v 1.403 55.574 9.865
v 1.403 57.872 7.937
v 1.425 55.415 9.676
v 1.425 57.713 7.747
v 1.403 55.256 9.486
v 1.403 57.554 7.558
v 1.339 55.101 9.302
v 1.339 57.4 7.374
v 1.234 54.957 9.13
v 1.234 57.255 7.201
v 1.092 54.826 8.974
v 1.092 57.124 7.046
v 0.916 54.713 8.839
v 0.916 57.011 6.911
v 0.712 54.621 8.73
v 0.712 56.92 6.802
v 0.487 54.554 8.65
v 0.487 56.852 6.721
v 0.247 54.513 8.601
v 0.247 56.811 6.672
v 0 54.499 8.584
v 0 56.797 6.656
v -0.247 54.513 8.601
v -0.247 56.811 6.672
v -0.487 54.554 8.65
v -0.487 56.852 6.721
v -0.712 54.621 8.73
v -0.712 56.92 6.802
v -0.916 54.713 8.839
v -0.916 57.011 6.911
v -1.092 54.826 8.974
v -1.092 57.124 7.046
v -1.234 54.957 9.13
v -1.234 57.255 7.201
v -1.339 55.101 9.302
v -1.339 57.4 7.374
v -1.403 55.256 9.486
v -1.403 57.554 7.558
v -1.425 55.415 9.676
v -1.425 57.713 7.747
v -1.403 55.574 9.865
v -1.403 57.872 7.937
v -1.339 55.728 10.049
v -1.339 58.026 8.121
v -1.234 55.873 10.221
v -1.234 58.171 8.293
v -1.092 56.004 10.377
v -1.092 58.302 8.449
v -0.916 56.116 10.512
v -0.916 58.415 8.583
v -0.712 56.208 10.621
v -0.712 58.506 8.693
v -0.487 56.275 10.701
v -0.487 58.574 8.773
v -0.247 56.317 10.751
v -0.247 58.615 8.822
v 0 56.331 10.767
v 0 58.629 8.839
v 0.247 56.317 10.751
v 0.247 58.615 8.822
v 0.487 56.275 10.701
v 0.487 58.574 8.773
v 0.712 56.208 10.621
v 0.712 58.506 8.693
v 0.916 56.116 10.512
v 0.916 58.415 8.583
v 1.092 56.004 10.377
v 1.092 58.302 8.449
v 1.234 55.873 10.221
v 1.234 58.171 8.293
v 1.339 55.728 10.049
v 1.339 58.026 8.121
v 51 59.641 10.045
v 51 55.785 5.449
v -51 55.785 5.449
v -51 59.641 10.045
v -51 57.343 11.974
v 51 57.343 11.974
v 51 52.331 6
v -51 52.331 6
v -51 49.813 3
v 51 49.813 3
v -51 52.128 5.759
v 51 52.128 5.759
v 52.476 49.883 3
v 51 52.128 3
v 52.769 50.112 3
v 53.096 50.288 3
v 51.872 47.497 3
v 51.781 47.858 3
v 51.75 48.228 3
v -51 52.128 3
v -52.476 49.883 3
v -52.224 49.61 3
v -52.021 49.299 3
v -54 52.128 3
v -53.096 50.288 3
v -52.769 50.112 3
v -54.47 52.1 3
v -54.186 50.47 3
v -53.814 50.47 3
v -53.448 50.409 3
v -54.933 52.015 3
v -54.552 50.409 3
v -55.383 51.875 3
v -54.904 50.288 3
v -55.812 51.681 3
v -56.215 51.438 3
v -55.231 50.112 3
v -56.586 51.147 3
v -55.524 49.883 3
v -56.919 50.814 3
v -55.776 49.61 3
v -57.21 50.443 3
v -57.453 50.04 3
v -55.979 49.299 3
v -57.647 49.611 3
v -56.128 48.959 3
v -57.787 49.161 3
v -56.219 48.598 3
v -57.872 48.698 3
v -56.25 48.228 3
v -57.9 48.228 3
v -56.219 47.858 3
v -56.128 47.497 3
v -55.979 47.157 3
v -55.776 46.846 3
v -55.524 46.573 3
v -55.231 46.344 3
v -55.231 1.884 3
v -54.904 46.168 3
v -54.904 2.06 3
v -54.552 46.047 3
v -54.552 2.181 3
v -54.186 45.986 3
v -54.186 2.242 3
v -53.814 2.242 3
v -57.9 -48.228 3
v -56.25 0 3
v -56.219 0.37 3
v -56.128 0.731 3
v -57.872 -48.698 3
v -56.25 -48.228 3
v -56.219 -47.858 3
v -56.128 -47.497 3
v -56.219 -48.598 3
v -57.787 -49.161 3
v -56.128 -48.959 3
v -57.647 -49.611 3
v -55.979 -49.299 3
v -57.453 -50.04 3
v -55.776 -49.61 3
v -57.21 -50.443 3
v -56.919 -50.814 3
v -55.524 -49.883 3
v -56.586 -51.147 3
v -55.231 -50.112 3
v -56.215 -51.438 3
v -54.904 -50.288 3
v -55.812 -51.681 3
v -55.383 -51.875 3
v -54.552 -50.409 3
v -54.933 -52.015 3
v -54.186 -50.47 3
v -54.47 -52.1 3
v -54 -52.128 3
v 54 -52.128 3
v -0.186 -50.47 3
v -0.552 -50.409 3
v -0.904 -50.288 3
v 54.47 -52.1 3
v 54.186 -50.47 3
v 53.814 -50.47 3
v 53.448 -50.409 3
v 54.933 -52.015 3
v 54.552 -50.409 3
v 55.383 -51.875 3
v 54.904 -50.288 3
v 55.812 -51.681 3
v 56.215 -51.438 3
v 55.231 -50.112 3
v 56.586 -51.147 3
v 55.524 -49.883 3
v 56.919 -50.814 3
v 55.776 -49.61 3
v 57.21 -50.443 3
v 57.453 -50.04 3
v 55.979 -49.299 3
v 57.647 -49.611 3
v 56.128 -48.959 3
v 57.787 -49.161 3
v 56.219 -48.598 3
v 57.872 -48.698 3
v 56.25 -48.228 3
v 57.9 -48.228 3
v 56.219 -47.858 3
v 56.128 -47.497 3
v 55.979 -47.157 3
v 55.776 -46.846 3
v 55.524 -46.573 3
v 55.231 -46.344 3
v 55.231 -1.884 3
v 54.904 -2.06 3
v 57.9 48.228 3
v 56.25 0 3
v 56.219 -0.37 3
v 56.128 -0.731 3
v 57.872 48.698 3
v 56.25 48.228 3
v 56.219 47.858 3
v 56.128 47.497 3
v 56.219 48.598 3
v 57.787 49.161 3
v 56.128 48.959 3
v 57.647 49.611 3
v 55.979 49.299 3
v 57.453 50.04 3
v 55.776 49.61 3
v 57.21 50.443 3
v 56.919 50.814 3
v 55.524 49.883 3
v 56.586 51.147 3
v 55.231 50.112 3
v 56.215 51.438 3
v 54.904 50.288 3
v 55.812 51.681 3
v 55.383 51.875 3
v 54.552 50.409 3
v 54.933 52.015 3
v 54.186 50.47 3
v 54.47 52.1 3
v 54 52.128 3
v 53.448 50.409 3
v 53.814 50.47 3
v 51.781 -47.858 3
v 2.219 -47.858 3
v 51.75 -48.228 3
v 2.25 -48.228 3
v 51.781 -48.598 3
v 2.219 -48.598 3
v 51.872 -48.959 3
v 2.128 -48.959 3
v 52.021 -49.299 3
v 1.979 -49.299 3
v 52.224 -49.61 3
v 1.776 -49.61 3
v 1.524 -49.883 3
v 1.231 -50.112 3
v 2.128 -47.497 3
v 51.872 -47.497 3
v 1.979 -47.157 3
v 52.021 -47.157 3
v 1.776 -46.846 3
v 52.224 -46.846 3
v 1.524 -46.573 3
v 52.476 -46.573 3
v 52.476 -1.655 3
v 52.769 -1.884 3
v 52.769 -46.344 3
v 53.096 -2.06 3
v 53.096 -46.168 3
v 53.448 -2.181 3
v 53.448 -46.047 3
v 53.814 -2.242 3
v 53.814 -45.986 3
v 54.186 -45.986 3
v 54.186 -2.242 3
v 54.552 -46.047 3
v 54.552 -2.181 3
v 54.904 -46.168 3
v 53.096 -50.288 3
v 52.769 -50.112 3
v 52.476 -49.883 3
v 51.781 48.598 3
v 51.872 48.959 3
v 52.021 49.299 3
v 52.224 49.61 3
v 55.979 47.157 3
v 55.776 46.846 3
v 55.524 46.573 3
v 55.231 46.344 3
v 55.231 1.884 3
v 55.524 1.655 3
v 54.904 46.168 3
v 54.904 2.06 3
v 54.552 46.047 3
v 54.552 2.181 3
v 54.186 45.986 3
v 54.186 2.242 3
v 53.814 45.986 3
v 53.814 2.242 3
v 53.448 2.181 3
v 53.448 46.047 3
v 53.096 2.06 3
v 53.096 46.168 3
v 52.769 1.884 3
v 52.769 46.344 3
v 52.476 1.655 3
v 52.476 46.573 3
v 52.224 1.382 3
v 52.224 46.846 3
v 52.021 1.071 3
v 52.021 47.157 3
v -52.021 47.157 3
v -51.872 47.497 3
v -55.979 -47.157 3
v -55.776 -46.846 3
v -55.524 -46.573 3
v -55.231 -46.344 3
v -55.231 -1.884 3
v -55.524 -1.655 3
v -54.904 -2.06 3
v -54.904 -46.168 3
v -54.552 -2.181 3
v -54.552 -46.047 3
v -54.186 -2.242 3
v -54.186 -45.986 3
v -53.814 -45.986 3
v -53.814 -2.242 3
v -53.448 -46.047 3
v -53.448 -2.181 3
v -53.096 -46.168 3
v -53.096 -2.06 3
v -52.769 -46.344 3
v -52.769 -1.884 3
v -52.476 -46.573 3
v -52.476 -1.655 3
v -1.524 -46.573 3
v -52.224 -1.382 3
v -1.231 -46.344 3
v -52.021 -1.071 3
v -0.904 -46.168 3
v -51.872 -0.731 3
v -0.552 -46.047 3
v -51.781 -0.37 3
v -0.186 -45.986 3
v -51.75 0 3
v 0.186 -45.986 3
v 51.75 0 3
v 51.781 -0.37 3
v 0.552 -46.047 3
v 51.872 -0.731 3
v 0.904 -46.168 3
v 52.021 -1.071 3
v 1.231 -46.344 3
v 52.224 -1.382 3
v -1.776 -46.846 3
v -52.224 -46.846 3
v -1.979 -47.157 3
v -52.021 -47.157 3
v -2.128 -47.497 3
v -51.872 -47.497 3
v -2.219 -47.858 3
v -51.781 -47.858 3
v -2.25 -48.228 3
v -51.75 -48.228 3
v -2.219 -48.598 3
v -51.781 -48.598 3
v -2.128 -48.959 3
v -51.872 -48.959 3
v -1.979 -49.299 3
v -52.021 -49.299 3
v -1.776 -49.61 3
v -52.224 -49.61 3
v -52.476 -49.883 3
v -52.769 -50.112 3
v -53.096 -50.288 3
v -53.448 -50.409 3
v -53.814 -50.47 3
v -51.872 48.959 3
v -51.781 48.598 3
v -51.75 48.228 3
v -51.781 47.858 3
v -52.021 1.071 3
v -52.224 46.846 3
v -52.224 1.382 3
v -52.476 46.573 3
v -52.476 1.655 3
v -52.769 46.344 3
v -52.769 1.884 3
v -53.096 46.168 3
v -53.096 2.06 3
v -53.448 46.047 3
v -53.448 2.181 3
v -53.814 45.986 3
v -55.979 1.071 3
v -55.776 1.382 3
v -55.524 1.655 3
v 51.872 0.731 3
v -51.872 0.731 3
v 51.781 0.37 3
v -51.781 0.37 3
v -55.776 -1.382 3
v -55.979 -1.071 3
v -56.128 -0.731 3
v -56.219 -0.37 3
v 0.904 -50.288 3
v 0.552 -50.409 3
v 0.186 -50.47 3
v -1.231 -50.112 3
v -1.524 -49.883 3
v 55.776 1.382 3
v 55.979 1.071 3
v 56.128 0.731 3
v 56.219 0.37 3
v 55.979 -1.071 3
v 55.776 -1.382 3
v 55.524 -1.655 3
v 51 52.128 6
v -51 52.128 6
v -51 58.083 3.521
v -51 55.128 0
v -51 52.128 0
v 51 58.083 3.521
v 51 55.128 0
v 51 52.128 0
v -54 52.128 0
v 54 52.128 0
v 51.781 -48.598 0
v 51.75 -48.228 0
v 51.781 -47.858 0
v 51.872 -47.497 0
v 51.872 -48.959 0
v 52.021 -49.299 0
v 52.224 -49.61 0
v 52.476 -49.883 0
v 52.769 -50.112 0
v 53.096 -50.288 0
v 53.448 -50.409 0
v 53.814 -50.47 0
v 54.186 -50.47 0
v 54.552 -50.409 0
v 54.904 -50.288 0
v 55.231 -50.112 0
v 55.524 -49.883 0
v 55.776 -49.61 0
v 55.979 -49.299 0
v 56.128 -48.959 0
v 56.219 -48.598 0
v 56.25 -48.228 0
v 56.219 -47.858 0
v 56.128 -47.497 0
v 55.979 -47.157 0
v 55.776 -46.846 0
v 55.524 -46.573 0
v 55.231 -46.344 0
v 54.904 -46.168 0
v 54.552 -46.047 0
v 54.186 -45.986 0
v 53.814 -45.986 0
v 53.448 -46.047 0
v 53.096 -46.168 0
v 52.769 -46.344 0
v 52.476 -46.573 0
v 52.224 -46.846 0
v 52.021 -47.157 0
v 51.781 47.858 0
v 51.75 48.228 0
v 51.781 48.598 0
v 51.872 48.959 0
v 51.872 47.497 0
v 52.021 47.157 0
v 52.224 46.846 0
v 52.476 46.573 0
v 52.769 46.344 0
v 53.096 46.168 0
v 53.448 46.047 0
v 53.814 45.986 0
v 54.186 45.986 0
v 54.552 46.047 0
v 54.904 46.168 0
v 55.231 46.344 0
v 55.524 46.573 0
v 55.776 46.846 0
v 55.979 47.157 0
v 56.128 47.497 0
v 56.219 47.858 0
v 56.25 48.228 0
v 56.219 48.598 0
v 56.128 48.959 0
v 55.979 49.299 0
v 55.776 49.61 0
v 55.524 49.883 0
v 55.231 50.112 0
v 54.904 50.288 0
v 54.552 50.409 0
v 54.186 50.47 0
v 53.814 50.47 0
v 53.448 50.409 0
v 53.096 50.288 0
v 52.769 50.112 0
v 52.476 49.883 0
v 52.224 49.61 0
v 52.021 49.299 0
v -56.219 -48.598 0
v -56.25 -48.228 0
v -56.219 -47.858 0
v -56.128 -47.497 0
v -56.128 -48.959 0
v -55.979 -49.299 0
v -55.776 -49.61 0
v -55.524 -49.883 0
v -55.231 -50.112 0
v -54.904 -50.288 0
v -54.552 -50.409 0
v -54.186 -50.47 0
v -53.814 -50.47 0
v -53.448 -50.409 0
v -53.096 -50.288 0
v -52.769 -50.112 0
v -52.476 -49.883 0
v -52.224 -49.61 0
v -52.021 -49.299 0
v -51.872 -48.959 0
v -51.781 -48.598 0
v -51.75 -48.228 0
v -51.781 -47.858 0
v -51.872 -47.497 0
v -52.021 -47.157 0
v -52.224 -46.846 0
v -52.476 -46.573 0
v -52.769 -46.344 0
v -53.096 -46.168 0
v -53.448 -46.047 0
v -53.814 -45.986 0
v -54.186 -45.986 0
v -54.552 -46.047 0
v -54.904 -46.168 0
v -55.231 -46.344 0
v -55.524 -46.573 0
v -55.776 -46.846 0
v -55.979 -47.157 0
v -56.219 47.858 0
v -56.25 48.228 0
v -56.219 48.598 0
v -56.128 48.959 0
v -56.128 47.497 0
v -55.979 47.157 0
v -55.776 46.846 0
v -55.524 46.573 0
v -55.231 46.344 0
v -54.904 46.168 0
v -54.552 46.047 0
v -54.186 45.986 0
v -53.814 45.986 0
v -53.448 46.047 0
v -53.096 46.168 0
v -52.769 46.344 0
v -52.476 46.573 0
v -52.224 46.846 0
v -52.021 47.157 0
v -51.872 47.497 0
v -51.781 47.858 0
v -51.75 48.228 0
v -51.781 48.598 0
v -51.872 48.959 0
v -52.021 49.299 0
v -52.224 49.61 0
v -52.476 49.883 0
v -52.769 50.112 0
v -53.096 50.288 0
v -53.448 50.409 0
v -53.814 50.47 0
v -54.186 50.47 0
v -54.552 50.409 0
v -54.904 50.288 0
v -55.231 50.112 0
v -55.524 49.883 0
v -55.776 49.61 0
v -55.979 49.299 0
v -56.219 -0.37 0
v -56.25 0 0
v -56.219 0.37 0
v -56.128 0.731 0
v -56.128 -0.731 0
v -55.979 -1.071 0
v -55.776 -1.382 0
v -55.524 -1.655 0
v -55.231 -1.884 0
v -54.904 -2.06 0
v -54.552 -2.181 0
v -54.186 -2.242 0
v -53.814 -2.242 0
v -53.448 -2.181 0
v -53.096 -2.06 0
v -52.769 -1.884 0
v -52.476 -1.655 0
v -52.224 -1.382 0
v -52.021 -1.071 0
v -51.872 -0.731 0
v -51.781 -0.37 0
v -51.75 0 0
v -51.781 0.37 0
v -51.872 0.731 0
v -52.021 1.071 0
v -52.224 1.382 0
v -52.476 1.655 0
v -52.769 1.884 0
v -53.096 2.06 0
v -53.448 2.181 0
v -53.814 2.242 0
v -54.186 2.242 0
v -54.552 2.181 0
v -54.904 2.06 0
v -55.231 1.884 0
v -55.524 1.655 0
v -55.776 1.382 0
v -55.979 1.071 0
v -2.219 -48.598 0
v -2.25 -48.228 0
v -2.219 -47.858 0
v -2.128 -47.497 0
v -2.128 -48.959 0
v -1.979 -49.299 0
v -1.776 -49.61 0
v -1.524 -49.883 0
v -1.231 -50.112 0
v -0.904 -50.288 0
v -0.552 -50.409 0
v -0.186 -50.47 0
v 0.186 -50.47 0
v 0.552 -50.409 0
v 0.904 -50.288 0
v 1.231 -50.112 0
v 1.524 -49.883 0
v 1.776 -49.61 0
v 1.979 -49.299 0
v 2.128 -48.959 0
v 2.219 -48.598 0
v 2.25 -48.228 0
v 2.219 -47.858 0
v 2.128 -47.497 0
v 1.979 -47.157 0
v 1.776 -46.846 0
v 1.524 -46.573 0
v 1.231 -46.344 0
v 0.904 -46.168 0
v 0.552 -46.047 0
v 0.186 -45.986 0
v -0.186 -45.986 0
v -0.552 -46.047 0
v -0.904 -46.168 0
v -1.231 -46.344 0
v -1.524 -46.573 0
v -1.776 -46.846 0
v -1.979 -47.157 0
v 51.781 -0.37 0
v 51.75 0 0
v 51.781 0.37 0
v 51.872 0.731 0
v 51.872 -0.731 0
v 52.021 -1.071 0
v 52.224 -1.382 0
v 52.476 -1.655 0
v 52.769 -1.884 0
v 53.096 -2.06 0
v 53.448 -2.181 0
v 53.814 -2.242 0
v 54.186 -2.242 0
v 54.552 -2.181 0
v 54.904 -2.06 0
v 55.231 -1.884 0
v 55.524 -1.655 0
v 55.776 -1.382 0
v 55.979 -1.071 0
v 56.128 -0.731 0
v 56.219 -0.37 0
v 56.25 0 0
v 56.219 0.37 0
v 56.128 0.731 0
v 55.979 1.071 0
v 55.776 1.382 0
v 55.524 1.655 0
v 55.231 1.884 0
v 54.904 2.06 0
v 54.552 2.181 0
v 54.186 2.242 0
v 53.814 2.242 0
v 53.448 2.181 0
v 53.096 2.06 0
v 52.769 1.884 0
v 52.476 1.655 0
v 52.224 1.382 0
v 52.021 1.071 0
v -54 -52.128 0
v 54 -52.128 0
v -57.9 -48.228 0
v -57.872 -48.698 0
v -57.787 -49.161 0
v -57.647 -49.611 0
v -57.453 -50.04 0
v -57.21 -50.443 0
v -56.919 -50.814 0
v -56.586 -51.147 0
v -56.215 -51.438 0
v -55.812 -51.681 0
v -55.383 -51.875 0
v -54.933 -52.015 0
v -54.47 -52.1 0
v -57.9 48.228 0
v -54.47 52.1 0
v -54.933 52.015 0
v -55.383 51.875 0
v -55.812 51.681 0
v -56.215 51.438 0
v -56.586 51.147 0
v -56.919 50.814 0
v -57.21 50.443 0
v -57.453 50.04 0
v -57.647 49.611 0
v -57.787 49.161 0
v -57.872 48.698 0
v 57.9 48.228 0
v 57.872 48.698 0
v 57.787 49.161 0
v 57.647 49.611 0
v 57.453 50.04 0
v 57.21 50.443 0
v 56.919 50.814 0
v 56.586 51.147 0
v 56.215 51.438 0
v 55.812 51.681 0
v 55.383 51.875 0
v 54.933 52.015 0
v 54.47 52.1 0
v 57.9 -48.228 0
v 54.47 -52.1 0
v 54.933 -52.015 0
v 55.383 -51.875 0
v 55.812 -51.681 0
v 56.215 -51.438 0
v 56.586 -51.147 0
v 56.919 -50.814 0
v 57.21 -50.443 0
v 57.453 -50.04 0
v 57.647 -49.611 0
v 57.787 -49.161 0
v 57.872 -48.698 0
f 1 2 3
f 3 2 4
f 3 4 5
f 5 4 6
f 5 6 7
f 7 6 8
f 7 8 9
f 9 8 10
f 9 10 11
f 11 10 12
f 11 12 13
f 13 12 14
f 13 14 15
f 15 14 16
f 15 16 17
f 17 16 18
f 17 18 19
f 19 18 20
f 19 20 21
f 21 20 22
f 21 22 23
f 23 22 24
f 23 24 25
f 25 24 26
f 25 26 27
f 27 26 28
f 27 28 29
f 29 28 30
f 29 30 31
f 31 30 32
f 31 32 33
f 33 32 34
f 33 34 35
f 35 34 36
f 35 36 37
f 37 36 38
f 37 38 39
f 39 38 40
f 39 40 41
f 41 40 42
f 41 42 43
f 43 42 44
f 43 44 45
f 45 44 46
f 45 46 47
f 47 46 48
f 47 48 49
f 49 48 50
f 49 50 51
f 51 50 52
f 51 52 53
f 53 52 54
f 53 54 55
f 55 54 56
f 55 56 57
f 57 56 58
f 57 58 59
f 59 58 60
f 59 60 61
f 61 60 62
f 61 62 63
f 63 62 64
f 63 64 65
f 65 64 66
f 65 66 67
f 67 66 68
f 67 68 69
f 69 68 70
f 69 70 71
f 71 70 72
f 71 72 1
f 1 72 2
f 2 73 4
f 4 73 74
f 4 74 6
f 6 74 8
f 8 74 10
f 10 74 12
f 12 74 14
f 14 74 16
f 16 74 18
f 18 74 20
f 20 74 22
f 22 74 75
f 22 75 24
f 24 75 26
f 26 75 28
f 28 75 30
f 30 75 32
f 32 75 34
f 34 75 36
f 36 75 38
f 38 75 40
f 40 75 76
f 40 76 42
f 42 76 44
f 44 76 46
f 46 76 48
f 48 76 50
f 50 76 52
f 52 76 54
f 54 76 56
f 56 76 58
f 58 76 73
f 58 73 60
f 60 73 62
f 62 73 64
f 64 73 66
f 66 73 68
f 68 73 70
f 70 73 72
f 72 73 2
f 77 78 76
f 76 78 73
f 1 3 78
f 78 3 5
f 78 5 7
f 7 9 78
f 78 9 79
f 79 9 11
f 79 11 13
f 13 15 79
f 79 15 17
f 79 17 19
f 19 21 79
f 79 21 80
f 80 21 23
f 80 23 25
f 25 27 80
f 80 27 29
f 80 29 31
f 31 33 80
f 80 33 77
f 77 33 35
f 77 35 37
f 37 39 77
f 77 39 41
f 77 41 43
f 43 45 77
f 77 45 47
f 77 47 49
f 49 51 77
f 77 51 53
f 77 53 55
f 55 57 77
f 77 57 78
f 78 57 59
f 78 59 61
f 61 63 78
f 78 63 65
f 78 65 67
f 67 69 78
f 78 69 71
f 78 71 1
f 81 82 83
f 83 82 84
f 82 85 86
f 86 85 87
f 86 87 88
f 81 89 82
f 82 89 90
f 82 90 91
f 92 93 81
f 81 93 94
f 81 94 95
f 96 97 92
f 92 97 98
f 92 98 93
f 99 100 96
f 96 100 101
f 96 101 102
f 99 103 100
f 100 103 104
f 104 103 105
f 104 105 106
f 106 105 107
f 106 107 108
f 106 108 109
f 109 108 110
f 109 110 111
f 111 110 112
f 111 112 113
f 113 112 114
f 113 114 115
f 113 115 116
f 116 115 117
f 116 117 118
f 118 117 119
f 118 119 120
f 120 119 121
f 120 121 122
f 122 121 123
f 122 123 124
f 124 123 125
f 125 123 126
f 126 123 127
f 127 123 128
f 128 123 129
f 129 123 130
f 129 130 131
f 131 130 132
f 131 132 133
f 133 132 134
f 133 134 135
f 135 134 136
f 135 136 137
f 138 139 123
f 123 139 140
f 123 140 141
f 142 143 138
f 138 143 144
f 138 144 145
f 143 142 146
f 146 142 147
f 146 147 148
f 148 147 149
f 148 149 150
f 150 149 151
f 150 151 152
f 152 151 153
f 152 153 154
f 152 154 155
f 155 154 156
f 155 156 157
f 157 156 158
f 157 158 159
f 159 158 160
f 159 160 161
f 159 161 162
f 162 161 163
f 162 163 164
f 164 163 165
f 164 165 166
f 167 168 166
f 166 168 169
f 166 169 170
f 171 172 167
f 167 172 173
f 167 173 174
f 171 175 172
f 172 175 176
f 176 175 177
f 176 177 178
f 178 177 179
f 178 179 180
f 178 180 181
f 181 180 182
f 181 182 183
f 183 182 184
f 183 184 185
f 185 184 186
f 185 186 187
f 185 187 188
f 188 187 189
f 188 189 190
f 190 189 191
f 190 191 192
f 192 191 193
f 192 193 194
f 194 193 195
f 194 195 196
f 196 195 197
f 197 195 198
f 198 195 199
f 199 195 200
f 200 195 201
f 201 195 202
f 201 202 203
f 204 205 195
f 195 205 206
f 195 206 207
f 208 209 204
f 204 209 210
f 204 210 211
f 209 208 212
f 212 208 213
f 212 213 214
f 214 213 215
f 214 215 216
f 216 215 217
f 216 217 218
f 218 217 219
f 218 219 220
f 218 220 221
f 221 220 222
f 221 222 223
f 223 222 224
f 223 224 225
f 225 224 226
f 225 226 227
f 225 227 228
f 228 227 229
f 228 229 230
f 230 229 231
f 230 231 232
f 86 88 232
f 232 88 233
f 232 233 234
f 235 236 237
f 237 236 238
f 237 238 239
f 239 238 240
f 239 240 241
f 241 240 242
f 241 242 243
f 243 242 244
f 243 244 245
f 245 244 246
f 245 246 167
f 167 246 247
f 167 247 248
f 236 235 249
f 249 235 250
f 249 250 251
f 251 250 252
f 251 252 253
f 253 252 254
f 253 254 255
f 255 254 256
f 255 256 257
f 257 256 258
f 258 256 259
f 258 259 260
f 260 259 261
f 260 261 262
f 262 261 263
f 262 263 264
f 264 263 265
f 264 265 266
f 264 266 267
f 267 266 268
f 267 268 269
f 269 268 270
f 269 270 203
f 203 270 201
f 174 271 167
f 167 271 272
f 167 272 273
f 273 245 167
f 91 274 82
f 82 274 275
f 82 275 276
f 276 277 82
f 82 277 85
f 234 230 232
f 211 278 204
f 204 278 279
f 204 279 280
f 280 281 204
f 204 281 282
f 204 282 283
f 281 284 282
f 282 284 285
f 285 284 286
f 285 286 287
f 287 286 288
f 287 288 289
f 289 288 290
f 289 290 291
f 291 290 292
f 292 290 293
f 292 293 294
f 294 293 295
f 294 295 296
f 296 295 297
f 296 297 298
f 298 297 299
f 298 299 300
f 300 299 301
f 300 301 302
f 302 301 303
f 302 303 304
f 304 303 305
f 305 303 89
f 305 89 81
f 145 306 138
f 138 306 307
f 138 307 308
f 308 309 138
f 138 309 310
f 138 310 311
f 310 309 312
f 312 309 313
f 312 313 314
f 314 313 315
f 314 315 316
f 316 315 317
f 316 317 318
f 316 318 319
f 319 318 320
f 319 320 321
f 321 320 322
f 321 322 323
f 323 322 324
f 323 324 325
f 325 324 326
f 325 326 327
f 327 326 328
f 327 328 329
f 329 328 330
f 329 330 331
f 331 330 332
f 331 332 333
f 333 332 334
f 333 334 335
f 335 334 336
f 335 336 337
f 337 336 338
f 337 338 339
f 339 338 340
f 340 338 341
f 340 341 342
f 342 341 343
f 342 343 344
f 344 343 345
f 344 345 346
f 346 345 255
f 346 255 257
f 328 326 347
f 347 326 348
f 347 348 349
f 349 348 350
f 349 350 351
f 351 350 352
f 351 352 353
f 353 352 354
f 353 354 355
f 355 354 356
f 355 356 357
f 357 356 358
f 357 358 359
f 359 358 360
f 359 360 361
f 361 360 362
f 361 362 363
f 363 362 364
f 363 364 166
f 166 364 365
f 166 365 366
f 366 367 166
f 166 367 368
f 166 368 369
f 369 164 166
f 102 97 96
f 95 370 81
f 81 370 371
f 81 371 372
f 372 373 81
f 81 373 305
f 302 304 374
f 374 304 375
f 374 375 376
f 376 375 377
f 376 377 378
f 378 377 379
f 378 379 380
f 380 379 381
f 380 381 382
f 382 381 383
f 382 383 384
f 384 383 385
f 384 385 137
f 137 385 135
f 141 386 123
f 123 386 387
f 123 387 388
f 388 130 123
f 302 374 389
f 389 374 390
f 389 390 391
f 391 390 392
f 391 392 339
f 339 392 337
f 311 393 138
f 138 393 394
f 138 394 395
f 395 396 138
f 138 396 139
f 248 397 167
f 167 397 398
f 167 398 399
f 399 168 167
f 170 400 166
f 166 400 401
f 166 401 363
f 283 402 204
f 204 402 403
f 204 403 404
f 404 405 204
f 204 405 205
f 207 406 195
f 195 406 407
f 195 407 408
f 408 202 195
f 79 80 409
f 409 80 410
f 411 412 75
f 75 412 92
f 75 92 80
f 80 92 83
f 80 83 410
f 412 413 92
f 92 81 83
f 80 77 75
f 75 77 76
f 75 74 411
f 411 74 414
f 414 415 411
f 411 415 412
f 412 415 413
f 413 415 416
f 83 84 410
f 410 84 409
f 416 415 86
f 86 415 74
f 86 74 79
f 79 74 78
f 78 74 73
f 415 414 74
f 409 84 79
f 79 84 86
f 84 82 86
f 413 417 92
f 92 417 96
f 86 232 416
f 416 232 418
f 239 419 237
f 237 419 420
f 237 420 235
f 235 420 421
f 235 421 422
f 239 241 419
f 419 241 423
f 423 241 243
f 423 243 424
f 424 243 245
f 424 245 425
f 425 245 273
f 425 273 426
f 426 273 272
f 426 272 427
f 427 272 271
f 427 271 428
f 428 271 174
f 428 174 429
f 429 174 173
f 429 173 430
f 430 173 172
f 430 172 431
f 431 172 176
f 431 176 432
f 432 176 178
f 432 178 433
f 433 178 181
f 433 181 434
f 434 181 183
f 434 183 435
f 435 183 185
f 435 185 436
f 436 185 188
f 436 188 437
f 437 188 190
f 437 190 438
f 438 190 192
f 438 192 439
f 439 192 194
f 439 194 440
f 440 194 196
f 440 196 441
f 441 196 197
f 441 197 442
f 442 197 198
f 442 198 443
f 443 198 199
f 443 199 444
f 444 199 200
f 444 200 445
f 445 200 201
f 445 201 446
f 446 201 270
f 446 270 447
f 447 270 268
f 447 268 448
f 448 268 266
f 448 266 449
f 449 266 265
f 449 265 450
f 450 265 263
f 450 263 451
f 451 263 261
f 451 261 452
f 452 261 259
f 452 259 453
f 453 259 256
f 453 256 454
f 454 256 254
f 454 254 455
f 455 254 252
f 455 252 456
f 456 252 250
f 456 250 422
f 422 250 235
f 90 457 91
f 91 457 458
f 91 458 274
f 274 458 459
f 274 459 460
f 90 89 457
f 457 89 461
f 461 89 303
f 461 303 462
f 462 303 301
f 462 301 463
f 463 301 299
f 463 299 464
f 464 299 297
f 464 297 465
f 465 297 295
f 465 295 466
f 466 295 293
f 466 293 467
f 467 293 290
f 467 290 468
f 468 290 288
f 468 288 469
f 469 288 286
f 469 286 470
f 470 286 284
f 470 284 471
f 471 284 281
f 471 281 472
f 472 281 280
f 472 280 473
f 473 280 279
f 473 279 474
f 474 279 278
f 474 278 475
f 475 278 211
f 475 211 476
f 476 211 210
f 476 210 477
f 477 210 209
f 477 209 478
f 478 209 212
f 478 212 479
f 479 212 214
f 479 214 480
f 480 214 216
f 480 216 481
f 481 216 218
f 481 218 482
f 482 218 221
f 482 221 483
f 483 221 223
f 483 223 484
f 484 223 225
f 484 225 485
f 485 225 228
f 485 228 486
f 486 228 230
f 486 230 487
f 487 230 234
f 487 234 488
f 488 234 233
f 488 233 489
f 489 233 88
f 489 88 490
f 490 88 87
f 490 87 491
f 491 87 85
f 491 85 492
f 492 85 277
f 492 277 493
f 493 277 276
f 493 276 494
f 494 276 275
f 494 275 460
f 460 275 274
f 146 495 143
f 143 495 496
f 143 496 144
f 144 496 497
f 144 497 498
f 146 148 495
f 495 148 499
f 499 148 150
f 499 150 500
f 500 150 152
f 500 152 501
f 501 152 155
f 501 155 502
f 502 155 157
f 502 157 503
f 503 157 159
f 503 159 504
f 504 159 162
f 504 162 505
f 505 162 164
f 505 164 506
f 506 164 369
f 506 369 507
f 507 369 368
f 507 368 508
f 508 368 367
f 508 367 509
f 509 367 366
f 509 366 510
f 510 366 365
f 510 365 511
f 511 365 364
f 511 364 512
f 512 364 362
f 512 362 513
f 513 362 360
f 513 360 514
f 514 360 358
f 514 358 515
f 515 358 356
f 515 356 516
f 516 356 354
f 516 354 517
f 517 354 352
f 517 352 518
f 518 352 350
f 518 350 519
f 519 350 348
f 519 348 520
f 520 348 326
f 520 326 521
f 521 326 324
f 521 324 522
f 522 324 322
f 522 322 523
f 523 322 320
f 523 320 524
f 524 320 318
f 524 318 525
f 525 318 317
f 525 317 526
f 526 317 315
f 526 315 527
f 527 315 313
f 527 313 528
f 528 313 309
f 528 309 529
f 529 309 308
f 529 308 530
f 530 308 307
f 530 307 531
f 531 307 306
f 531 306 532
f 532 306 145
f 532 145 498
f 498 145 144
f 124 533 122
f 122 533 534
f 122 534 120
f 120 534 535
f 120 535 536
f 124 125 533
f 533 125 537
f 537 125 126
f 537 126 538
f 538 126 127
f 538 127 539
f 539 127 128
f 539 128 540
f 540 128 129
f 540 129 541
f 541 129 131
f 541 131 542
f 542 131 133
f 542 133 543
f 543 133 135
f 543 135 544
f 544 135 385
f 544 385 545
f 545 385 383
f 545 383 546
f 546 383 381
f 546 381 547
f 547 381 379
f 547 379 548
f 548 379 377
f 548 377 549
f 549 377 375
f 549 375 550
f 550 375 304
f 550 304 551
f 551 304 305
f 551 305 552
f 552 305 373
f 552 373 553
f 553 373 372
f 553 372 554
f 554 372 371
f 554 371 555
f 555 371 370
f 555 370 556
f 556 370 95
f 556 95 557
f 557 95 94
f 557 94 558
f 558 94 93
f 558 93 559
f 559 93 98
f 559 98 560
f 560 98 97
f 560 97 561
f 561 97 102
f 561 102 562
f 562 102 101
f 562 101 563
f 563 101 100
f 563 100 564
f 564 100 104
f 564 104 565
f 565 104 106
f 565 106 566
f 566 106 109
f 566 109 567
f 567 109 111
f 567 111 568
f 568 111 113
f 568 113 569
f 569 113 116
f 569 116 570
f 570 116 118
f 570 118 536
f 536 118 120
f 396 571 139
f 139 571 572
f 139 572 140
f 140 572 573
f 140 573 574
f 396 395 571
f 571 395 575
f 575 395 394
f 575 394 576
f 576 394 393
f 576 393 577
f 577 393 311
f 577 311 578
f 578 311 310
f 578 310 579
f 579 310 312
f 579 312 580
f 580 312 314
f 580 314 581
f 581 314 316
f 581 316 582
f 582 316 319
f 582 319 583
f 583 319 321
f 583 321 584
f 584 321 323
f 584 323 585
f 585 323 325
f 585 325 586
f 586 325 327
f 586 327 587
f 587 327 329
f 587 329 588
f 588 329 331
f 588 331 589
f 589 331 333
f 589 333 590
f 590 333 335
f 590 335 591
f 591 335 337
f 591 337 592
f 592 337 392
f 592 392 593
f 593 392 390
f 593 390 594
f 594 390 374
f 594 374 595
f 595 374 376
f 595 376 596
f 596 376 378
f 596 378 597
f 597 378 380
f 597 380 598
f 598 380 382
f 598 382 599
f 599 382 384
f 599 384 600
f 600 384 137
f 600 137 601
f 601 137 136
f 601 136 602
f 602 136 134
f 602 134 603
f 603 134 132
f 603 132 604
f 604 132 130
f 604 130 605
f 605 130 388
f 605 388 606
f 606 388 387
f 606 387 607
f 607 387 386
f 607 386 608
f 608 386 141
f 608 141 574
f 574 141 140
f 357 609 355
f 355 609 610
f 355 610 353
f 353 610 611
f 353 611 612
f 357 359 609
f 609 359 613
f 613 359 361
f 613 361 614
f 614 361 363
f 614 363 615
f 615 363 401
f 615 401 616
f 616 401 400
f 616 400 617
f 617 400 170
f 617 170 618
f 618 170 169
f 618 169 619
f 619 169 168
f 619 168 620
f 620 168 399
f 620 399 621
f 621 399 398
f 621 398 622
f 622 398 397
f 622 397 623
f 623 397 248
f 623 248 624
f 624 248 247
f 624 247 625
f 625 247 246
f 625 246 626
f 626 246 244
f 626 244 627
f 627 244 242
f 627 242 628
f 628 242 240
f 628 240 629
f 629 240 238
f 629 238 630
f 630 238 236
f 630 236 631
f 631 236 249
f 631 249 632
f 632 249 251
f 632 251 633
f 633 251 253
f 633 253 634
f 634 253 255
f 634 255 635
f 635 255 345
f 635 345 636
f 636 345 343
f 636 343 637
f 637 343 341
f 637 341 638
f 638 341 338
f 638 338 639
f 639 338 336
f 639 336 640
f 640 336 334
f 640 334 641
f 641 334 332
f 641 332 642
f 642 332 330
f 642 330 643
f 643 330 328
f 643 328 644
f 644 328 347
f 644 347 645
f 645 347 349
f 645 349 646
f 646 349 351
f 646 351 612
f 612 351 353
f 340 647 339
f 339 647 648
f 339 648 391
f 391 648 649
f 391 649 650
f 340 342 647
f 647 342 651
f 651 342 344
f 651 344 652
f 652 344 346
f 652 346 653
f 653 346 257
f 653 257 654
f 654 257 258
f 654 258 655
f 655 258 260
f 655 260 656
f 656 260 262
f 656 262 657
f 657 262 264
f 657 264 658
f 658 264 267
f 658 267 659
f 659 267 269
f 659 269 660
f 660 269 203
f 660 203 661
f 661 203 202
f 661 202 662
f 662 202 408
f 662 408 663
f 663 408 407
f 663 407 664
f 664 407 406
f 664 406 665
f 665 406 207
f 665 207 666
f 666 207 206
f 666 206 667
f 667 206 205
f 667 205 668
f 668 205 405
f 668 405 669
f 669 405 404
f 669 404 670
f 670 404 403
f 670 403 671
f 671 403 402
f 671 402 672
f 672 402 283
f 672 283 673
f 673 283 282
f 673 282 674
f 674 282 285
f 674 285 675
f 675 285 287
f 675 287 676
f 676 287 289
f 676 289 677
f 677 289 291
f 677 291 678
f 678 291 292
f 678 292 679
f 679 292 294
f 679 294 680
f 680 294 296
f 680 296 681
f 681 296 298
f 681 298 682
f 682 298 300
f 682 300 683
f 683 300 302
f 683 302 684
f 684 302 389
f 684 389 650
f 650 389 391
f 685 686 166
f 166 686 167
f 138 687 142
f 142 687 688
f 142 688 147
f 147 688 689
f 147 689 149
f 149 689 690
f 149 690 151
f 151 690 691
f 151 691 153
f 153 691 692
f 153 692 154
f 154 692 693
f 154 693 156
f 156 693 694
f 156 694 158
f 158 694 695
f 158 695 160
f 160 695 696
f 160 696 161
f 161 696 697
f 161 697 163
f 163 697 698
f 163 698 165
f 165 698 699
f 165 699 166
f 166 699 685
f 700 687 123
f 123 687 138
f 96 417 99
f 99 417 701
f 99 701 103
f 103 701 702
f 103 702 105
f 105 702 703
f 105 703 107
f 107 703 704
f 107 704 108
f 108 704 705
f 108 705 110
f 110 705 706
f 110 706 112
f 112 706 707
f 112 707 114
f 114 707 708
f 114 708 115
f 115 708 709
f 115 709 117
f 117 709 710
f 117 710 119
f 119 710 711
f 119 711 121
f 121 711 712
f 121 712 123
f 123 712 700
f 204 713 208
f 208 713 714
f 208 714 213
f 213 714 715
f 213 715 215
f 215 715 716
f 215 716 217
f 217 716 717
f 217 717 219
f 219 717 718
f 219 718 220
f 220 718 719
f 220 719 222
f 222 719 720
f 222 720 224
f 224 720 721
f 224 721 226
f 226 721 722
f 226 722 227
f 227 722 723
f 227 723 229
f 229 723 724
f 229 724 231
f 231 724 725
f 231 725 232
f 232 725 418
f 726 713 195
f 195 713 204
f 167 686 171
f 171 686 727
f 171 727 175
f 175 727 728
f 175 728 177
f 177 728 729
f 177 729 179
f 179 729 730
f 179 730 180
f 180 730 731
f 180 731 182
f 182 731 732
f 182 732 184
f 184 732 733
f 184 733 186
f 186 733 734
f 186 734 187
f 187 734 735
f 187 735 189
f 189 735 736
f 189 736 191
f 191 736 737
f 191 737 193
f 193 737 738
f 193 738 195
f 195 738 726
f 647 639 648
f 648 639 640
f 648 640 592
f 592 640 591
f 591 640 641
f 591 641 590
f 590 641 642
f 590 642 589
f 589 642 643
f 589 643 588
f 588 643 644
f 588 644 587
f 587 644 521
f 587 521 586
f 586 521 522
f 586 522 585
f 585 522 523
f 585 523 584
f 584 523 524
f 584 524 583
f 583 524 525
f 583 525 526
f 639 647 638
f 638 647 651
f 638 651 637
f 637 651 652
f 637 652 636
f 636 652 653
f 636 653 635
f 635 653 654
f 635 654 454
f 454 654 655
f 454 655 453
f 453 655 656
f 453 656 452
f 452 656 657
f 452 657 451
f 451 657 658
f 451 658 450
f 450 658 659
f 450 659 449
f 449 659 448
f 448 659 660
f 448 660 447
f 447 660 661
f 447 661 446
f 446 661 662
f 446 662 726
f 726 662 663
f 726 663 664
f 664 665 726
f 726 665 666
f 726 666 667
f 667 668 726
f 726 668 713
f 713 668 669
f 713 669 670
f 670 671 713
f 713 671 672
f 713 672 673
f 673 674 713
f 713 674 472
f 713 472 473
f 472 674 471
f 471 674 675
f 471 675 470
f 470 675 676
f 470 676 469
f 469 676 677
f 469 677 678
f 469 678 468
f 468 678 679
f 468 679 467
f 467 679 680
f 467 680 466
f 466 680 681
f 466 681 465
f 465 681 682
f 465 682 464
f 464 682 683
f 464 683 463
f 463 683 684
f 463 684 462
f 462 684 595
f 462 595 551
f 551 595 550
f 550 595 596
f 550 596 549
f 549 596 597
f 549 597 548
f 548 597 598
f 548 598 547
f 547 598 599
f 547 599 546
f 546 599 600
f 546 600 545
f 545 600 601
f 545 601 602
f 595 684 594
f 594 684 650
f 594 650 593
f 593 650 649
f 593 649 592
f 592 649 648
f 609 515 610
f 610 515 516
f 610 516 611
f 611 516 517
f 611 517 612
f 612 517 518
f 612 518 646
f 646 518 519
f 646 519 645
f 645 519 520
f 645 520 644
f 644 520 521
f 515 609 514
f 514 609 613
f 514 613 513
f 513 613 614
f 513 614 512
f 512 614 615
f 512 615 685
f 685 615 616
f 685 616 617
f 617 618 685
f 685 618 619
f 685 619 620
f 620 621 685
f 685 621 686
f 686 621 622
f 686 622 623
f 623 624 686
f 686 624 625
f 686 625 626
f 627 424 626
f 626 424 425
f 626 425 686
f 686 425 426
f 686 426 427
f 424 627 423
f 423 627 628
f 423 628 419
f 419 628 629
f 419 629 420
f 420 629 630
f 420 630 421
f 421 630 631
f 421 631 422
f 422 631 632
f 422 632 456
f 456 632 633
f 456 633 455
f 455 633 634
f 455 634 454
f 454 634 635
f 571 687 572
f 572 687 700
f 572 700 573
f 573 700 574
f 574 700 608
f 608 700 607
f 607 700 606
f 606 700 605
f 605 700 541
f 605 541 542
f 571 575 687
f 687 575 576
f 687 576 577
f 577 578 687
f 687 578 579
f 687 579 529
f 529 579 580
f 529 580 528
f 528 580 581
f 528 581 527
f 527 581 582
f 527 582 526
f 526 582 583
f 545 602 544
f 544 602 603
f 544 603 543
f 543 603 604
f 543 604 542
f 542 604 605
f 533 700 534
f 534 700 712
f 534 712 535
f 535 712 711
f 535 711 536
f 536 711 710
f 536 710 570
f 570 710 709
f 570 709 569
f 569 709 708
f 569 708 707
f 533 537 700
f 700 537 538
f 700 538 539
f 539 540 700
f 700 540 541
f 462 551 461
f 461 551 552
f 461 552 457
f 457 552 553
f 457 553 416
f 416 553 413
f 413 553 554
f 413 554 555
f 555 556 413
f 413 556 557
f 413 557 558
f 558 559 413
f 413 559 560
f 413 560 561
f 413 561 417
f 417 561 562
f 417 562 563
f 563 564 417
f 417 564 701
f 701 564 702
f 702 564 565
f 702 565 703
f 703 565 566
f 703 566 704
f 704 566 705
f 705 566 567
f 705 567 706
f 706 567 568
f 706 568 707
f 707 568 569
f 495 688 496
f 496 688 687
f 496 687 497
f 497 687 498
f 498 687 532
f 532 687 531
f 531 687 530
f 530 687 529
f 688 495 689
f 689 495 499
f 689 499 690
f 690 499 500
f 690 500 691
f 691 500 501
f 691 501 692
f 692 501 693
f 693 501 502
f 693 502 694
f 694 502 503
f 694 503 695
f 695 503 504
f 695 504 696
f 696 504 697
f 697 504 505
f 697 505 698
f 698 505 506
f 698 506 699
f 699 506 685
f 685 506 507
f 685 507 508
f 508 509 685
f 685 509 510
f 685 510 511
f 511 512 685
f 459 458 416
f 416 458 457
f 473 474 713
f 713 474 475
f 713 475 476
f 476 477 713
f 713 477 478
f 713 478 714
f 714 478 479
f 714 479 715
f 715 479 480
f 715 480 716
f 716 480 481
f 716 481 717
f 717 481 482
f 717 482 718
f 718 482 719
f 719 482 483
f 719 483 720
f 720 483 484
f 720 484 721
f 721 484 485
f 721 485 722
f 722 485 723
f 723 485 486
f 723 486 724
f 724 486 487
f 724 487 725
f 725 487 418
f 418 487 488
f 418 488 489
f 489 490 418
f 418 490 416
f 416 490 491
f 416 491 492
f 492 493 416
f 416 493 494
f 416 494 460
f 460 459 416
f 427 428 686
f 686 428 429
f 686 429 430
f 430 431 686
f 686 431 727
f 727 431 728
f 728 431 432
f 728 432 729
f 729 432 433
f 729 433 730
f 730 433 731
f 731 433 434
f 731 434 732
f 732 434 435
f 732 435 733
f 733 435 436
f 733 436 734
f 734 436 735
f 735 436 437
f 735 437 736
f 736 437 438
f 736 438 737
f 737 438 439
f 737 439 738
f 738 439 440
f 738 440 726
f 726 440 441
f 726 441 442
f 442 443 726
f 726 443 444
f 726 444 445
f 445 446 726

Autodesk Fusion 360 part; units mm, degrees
sketch "Sketch1" plane through (0, 0, 0) normal (0, 0, 1) x (1, 0, 0)
  line L0 (-57.9, 52.128) -> (57.9, 52.128)
  line L1 (57.9, 52.128) -> (57.9, -52.128)
  line L2 (57.9, -52.128) -> (-57.9, -52.128)
  line L3 (-57.9, -52.128) -> (-57.9, 52.128)
  circle A0 centre (-54, 48.228) radius 3.9
  circle A1 centre (-54, 0) radius 2.25
  circle A2 centre (-54, -48.228) radius 3.9
  circle A3 centre (0, -48.228) radius 2.25
  circle A4 centre (54, -48.228) radius 3.9
  circle A5 centre (54, 0) radius 2.25
  circle A6 centre (54, 48.228) radius 3.9
  circle A7 centre (-54, 48.228) radius 2.25
  circle A8 centre (-54, -48.228) radius 2.25
  circle A9 centre (54, -48.228) radius 2.25
  circle A10 centre (54, 48.228) radius 2.25
  point P0 (0, 52.128)
  point P1 (-57.9, 0)
  dimension "d1" = 115.8
  dimension "d2" = 104.256
  dimension "d3" = 7.8
  dimension "d4" = 7.8
  dimension "d5" = 7.8
  dimension "d6" = 7.8
  dimension "d7" = 4.5
  dimension "d8" = 4.5
  dimension "d9" = 4.5
  dimension "d10" = 4.5
  dimension "d11" = 4.5
  dimension "d12" = 4.5
  dimension "d13" = 4.5
  dimension "d14" = 48.128
  dimension "d15" = 96.256
  dimension "d16" = 53.9
  dimension "d17" = 107.8
extrude "Extrude1" add sketch "Sketch1" along normal blind 3 contours L0 L1 L2 L3 A0 A2 A4 A6 | A0 | A6 | A2 | A4
sketch "Sketch2" plane through (0, 0, 0) normal (1, 0, 0) x (0, 1, 0)
  line L0 (-2.25, 3) -> (2.25, 3)
  line L1 (-50.478, 3) -> (-45.978, 3)
  line L2 (-2.25, 3) -> (2.25, 3)
  line L3 (45.978, 3) -> (50.478, 3)
  line L4 (-50.478, 3) -> (-45.978, 3)
  line L5 (45.978, 3) -> (50.478, 3)
  line L6 (-50.478, 3) -> (-45.978, 3)
  line L7 (-48.228, 3) -> (-52.128, 3)
  line L8 (-48.228, 3) -> (48.228, 3)
  line L9 (52.128, 3) -> (48.228, 3)
  line L10 (52.128, 3) -> (48.228, 3)
  line L11 (48.228, 3) -> (-48.228, 3)
  line L12 (-48.228, 3) -> (-52.128, 3)
  line L13 (52.128, 0) -> (52.128, 3)
  line L14 (52.128, 3) -> (52.128, 0)
  line L15 (-2.25, 0) -> (2.25, 0)
  line L16 (-50.478, 0) -> (-45.978, 0)
  line L17 (-2.25, 0) -> (2.25, 0)
  line L18 (45.978, 0) -> (50.478, 0)
  line L19 (-50.478, 0) -> (-45.978, 0)
  line L20 (45.978, 0) -> (50.478, 0)
  line L21 (-50.478, 0) -> (-45.978, 0)
  line L22 (-48.228, 0) -> (-52.128, 0)
  line L23 (-48.228, 0) -> (-52.128, 0)
  line L24 (-48.228, 0) -> (48.228, 0)
  line L25 (52.128, 0) -> (48.228, 0)
  line L26 (52.128, 0) -> (48.228, 0)
  line L27 (48.228, 0) -> (-48.228, 0)
  line L28 (52.128, 3) -> (52.128, 6)
  line L29 (52.128, 6) -> (55.128, 6)
  line L30 (55.128, 6) -> (58.0826, 3.5208)
  line L31 (58.0826, 3.5208) -> (56.1543, 1.2226)
  line L32 (56.1543, 1.2226) -> (62.2826, -3.9197)
  line L33 (62.2826, -3.9197) -> (61.2567, -5.1423)
  line L34 (61.2567, -5.1423) -> (55.1284, 0)
  line L35 (56.1543, 1.2226) -> (55.1284, 0)
  line L36 (55.1284, 0) -> (52.128, 0)
  dimension "d20" = 3
  dimension "d21" = 3
  dimension "d22" = 140
  dimension "d24" = 3.857
  dimension "d26" = 3
  dimension "d27" = 8
  dimension "d28" = 1.596
extrude "Extrude2" add sketch "Sketch2" along normal mid plane 102 contours L13 L14 L28 L29 L30 L31 L35 L36
sketch "Sketch1 (2)" plane through (0, 25.732, 30.6662) normal (0, 0.6428, 0.766) x (-1, 0, 0)
  line L0 (51, -38.3738) -> (-51, -38.3738)
  line L1 (-51, -38.3738) -> (-51, -42.2308)
  line L2 (-51, -42.2308) -> (51, -42.2308)
  line L3 (51, -42.2308) -> (51, -38.3738)
  line L4 (51, -39.2308) -> (-51, -39.2308)
  line L5 (-51, -39.2308) -> (-51, -36.2308)
  line L6 (-51, -36.2308) -> (51, -36.2308)
  line L7 (51, -36.2308) -> (51, -39.2308)
  dimension "d67" = 3
  dimension "d68" = 3
extrude "Extrude4" add sketch "Sketch1 (2)" against normal blind 7 contours L0 L1 L3 L4 L5 L7 | L0 L5 L6 L7
sketch "Sketch2 (2)" plane through (0, 25.732, 30.6662) normal (0, 0.6428, 0.766) x (-1, 0, 0)
  line L0 (-51, -36.2308) -> (-51, -42.2308)
  line L1 (-51, -42.2308) -> (51, -42.2308)
  line L2 (51, -42.2308) -> (51, -36.2308)
  line L3 (51, -36.2308) -> (-51, -36.2308)
  line L4 (51, -39.2308) -> (-51, -39.2308)
  line L5 (-51, -39.2308) -> (-51, -36.2308)
  line L6 (-51, -36.2308) -> (51, -36.2308)
  line L7 (51, -36.2308) -> (51, -39.2308)
  dimension "d71" = 3
extrude "Extrude5" add sketch "Sketch2 (2)" along normal blind 6 contours L0 L2 L3 L4 L5 L6 L7
sketch "Sketch3" plane through (0, 30.0525, -25.2171) normal (0, 0.766, -0.6428) x (-1, 0, 0)
  line L0 (-51, 40.0319) -> (51, 40.0319)
  line L1 (51, 40.0319) -> (51, 46.0319)
  line L2 (51, 46.0319) -> (-51, 46.0319)
  line L3 (-51, 46.0319) -> (-51, 40.0319)
  circle A0 centre (0, 43.0319) radius 1.425
  dimension "d74" = 2.85
  dimension "d75" = 3
extrude "Extrude6" cut sketch "Sketch3" against normal blind 4 contours A0
equation "d4 = d3"
equation "d5 = d3"
equation "d6 = d3"
equation "d8 = d7"
equation "d9 = d7"
equation "d10 = d7"
equation "d11 = d7"
equation "d12 = d7"
equation "d13 = d7"
